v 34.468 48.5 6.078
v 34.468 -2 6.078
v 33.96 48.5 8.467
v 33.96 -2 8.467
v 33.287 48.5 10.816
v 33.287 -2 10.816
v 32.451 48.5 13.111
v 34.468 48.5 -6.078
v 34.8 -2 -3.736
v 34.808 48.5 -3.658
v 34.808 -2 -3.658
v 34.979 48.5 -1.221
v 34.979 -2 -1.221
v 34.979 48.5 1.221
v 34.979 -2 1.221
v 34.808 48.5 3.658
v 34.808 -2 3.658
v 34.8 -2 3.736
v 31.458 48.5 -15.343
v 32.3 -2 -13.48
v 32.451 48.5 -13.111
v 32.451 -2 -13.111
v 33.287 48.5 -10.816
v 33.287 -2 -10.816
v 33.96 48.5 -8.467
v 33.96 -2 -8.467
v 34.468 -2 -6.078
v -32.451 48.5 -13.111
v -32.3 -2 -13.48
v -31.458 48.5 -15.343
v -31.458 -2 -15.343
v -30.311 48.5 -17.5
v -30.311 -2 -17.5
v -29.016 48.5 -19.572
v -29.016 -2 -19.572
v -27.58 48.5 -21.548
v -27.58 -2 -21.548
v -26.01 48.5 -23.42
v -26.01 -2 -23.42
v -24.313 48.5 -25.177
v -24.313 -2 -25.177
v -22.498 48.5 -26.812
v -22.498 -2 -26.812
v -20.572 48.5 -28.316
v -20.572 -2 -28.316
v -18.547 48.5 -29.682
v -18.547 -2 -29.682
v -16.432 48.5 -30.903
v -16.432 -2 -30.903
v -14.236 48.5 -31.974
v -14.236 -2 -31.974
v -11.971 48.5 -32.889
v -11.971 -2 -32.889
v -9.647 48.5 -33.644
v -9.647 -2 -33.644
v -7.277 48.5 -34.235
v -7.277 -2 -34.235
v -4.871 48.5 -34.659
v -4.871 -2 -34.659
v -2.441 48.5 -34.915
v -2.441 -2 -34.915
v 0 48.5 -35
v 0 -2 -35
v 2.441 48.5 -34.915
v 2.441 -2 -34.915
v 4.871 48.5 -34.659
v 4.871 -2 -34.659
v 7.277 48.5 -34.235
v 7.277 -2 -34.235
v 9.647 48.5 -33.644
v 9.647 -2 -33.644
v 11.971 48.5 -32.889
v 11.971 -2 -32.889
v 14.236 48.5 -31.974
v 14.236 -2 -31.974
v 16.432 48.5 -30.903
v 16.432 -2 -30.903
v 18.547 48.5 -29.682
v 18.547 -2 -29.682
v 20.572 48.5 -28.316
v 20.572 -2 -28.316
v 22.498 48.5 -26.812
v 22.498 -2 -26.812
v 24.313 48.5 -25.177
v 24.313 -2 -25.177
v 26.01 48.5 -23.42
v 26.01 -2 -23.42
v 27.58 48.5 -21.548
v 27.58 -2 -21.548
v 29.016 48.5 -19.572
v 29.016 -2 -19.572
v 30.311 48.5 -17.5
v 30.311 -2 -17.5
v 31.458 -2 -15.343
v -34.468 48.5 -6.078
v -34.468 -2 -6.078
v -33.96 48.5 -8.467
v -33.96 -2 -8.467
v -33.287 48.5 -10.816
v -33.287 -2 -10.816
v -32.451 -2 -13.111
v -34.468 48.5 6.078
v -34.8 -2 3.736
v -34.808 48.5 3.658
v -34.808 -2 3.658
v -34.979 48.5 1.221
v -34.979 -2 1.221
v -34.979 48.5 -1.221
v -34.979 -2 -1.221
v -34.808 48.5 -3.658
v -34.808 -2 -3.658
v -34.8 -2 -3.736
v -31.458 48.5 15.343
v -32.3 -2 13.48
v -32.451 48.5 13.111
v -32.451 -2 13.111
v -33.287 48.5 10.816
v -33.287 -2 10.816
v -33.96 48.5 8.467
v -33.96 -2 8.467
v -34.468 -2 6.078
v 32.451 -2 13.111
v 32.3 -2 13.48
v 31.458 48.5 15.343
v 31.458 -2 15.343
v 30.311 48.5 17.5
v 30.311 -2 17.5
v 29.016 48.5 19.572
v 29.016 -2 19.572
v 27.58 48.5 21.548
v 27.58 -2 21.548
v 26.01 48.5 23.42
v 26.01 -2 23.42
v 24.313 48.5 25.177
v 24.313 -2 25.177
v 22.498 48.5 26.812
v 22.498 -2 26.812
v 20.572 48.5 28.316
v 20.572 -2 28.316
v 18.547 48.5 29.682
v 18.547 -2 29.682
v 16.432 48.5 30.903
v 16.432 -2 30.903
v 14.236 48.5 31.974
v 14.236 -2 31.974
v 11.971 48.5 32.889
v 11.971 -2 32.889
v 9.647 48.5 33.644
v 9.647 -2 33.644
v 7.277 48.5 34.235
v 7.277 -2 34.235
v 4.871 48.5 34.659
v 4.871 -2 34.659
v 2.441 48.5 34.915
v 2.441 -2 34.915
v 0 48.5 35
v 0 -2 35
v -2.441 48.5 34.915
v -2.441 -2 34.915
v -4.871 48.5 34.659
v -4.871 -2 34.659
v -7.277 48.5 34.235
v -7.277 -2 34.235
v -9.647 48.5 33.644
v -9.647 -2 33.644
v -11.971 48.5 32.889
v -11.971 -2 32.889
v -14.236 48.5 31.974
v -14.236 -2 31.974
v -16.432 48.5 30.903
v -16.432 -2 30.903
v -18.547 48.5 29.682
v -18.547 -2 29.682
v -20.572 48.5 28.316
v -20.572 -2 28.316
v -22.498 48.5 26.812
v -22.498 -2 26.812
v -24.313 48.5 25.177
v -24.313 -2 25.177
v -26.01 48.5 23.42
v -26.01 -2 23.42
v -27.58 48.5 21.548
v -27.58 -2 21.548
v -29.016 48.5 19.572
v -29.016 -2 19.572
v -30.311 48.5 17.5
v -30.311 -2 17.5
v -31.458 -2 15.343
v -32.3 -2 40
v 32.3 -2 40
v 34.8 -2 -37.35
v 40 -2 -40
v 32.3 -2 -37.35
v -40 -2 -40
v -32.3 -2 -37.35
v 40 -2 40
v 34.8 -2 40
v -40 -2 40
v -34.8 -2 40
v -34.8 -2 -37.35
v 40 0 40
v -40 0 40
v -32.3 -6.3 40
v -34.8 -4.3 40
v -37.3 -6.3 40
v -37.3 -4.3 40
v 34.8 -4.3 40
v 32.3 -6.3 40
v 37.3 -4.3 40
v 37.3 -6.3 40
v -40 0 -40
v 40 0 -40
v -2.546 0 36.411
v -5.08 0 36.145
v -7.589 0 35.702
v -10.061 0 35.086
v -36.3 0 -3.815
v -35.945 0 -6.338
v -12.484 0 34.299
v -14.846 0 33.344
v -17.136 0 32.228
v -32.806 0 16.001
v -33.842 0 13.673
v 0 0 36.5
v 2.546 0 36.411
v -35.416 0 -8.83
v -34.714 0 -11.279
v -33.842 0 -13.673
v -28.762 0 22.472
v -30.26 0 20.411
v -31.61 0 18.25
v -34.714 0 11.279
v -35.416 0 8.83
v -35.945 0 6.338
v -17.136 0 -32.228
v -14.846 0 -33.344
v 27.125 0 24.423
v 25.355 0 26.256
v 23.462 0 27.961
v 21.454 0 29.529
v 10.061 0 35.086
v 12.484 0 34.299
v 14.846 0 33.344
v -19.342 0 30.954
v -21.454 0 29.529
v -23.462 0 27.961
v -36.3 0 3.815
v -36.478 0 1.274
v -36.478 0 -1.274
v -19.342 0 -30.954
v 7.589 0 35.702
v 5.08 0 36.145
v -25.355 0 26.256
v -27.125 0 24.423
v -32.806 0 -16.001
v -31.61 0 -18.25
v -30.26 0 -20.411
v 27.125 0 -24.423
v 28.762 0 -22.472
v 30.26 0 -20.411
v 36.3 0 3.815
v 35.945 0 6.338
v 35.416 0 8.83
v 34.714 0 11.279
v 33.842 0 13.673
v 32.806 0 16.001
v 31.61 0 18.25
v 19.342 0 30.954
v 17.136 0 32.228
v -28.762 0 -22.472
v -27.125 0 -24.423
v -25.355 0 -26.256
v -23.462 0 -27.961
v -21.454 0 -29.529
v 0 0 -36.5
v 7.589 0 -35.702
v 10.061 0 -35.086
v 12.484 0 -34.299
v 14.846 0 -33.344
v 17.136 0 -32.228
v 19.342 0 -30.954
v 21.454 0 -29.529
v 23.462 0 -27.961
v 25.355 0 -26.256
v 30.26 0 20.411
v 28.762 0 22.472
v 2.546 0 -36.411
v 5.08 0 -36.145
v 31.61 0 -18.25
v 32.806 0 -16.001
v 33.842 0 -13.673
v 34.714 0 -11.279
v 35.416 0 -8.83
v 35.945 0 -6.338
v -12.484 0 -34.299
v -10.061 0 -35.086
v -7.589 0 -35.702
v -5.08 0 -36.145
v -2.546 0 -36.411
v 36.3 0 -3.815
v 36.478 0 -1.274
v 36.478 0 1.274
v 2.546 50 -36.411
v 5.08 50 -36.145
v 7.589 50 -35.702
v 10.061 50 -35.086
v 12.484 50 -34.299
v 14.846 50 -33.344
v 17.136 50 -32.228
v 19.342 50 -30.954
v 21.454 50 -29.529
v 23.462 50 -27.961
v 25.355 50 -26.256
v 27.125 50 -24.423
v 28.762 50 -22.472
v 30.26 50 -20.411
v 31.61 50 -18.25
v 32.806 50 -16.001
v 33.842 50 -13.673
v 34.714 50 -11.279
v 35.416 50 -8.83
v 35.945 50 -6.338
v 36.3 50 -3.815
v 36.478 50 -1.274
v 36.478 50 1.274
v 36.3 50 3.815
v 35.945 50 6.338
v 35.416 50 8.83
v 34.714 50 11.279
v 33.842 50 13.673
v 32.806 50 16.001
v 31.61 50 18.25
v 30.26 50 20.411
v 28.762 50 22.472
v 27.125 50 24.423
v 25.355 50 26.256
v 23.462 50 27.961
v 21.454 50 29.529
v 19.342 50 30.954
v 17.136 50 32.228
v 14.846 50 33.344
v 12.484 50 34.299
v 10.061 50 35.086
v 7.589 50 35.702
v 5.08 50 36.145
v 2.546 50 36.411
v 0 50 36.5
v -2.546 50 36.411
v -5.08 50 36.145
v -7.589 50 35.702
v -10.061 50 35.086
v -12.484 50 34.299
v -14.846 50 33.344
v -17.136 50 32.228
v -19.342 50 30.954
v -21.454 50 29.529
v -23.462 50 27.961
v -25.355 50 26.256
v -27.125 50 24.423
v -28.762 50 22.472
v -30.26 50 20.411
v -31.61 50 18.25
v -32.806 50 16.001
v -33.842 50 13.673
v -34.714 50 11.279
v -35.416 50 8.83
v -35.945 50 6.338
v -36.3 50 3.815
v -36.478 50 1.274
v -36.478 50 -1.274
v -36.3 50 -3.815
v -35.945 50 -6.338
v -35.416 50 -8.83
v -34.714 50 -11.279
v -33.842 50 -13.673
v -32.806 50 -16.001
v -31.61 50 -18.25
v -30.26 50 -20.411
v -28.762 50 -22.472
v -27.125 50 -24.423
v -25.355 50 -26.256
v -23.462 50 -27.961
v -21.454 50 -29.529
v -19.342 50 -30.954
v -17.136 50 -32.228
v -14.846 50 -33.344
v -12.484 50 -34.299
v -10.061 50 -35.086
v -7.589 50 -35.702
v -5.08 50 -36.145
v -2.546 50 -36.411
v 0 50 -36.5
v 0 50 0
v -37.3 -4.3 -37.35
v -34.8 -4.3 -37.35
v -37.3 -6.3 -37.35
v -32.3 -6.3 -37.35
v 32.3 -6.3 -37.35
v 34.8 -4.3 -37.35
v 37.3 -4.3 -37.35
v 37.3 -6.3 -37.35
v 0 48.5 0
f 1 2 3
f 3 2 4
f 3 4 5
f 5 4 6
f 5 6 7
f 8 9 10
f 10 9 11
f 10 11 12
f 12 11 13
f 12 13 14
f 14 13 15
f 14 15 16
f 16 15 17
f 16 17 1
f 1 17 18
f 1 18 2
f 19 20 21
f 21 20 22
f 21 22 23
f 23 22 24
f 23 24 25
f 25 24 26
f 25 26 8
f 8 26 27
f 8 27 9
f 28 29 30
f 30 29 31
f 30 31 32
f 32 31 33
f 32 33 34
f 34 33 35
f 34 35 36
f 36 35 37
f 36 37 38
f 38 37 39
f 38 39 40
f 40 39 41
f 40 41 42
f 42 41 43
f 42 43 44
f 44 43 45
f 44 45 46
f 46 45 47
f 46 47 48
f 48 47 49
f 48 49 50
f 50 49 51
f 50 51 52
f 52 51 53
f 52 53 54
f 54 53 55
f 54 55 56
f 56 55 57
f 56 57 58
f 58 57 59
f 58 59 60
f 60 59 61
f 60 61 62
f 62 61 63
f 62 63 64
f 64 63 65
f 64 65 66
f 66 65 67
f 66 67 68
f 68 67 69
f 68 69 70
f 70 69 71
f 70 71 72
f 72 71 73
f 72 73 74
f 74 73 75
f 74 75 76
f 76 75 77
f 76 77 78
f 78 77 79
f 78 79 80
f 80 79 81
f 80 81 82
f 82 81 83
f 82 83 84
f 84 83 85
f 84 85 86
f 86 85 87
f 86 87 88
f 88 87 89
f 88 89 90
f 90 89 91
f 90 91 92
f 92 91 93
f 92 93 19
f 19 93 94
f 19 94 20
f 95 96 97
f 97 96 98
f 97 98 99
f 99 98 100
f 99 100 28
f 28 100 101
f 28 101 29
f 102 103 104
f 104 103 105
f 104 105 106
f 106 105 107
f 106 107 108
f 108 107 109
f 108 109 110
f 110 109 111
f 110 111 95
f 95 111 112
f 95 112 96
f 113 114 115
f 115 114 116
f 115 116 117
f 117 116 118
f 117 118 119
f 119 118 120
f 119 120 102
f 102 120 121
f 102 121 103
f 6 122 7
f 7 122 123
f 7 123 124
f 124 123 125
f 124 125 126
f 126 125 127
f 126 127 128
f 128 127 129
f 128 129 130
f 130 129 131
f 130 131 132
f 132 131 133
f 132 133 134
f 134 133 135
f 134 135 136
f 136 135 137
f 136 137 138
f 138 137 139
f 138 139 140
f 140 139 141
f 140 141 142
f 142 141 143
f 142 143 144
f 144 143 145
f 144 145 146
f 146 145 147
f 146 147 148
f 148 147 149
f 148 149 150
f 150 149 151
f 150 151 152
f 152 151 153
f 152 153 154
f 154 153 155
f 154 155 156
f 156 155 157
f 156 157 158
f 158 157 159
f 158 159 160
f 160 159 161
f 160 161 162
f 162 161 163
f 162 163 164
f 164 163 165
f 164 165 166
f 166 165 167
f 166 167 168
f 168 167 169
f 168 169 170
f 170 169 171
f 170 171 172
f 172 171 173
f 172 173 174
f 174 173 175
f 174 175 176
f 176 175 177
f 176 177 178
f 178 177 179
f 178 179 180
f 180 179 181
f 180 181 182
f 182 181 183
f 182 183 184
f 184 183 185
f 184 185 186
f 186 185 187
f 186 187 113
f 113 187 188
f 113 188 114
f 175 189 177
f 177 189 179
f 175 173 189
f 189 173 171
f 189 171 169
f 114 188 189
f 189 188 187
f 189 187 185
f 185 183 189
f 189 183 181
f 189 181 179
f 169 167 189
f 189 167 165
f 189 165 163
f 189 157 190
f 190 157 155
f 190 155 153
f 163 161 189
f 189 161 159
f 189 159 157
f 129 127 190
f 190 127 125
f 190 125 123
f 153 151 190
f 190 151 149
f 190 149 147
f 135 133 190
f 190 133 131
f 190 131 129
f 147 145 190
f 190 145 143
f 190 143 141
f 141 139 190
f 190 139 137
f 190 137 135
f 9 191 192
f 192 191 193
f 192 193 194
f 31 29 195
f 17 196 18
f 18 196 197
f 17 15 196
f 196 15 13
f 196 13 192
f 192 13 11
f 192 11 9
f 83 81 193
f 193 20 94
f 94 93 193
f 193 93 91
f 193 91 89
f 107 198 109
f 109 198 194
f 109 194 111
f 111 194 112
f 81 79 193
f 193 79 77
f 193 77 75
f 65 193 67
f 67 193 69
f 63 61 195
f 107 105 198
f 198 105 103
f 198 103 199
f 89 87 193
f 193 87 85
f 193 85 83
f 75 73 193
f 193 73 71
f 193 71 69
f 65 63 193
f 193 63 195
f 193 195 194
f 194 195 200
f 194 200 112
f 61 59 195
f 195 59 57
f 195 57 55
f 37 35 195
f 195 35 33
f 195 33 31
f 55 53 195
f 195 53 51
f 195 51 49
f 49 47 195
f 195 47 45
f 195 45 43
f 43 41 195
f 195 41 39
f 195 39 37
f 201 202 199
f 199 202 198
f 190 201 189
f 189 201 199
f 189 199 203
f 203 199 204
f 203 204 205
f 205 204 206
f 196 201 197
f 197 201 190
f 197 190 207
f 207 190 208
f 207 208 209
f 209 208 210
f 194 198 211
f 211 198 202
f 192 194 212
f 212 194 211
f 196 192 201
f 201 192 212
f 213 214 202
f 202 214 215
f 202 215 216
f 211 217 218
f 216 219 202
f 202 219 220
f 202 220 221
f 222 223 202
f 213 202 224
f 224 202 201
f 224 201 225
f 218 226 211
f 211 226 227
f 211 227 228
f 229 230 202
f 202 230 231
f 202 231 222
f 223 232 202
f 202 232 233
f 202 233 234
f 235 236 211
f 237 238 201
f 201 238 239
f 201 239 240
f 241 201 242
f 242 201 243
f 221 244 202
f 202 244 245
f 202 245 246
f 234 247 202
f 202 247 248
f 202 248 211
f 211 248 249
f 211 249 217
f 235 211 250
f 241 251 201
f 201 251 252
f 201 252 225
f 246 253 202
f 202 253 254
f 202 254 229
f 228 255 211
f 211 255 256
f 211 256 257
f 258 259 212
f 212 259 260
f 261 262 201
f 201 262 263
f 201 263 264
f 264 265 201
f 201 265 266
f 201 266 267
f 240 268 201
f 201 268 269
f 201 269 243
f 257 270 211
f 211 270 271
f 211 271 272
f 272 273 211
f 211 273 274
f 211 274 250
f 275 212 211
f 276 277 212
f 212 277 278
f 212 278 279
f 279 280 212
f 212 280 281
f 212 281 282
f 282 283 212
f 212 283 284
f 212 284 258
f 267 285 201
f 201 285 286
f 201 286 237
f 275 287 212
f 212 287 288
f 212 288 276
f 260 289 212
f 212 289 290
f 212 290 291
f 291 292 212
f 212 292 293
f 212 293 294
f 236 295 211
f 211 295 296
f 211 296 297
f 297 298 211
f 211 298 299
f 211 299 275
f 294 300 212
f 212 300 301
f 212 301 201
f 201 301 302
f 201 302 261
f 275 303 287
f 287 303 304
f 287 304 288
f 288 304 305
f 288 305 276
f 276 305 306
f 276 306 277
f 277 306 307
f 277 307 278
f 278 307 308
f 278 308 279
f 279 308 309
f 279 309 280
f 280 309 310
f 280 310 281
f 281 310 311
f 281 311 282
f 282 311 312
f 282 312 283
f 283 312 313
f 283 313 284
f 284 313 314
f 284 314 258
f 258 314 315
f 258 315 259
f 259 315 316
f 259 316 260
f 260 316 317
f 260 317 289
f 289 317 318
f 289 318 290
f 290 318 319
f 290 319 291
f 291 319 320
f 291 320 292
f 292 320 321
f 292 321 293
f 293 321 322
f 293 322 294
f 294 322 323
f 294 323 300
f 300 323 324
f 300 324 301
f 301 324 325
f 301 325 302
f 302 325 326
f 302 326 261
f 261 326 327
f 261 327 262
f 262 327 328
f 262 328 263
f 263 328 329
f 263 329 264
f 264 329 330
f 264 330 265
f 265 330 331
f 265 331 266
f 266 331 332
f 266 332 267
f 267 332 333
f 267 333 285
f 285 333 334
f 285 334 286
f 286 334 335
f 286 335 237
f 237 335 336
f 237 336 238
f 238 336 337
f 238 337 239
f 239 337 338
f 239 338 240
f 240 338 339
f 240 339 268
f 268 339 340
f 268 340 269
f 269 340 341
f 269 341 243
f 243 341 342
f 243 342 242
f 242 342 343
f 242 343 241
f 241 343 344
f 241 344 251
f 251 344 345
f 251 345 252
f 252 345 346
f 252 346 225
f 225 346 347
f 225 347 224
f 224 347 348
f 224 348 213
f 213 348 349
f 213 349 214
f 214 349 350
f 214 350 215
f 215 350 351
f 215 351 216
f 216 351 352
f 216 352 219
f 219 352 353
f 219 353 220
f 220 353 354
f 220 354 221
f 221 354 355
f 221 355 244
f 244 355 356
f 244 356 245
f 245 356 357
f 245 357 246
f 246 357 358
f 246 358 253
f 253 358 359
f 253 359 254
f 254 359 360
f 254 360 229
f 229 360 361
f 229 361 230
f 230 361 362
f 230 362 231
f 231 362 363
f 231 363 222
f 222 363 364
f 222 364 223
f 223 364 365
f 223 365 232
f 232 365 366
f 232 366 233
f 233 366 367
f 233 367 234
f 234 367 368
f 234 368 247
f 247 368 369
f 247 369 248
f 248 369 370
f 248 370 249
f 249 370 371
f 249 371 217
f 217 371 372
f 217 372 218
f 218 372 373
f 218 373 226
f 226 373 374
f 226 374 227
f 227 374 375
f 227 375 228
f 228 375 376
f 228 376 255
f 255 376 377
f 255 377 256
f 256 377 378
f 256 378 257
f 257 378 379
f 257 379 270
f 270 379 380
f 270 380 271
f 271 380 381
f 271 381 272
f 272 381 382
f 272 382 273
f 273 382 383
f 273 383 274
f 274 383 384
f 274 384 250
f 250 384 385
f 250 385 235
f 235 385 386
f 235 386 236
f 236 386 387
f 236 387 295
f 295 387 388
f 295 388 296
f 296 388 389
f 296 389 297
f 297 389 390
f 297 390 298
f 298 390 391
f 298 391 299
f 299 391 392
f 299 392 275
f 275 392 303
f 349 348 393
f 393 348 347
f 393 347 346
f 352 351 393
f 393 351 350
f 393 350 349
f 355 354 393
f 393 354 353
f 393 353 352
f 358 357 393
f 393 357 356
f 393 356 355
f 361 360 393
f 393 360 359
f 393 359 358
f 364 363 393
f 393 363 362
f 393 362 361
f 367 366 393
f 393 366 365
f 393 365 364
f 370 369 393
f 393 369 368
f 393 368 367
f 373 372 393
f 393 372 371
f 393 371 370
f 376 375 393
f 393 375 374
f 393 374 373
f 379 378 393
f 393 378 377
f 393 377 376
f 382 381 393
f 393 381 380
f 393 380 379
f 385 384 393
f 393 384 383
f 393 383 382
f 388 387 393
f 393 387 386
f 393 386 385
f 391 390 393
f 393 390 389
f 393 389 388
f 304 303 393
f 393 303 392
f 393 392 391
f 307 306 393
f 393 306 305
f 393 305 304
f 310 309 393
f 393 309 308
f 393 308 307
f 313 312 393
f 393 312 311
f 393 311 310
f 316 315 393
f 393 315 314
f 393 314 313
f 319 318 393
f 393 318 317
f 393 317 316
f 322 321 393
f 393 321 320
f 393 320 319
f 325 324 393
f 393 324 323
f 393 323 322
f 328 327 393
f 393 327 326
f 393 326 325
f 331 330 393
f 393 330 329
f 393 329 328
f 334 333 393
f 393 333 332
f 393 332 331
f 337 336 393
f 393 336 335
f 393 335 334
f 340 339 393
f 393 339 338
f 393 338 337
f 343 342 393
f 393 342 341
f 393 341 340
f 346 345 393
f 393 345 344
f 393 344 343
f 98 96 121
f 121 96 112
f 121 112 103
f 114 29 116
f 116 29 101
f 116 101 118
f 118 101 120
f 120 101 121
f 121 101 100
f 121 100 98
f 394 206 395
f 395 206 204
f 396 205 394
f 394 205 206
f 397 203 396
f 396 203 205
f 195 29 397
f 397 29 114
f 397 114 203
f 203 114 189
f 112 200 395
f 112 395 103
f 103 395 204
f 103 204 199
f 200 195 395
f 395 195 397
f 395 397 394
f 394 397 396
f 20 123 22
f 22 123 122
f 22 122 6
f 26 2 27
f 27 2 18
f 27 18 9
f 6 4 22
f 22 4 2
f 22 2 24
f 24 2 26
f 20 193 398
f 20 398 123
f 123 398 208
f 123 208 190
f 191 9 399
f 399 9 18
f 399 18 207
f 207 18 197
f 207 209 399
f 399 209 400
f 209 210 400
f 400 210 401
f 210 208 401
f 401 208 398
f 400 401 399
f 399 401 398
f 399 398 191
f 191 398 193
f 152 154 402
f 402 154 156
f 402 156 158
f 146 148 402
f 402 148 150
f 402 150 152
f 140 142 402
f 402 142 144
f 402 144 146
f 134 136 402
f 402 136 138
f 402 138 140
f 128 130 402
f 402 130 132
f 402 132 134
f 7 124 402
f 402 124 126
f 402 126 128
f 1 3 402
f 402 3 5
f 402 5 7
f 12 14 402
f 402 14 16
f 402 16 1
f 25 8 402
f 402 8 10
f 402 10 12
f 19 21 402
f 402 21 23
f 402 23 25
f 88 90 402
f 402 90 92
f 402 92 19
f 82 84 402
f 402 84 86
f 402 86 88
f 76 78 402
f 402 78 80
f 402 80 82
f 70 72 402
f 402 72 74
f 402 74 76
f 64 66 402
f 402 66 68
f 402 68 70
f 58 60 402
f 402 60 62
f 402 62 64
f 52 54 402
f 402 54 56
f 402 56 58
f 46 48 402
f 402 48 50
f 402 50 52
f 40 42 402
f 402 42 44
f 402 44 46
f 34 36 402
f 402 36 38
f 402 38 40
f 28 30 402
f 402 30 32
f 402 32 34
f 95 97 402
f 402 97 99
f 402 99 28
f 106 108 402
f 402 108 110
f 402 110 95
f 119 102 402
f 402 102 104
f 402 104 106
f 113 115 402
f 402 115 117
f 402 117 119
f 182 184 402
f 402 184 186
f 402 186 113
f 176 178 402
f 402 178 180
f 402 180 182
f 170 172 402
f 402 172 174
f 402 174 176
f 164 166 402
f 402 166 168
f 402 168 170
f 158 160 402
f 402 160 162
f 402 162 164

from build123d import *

# Parameters (mm, degrees)
SKETCH1_W           = 80
SKETCH1_H           = 80
SKETCH1_R           = 36.5
SKETCH1_R_2         = 35
BOSS_EXTRUDE3_DEPTH = 2
BOSS_EXTRUDE4_START = 50
SKETCH1_7_R         = 36.5
SKETCH1_7_R_2       = 35
BOSS_EXTRUDE4_DEPTH = 50
BOSS_EXTRUDE5_DEPTH = 77.35
SKETCH4_R           = 36
BOSS_EXTRUDE6_DEPTH = 1.5


with BuildPart() as part:
    # Sketch1 → Boss-Extrude3 (new body)
    # profile 1 of 2: a face of its own
    with BuildSketch(Plane(origin=(0, 0, 0), x_dir=(1, 0, 0), z_dir=(0, 1, 0))):
        Rectangle(SKETCH1_W, SKETCH1_H)
        Circle(SKETCH1_R, mode=Mode.SUBTRACT)
    # profile 2 of 2: a face of its own
    with BuildSketch(Plane(origin=(0, 0, 0), x_dir=(1, 0, 0), z_dir=(0, 1, 0))):
        Circle(SKETCH1_R)
        with Locations(Location((0, 0, 0), (0, 0, 270))):
            Circle(SKETCH1_R_2, mode=Mode.SUBTRACT)
    extrude(amount=-BOSS_EXTRUDE3_DEPTH)

    # Sketch1<7> → Boss-Extrude4 (add)
    with BuildSketch(Plane(origin=(0, 0, 0), x_dir=(1, 0, 0), z_dir=(0, 1, 0)).offset(BOSS_EXTRUDE4_START)):
        with Locations(Location((0, 0, 0), (0, 0, 270))):
            Circle(SKETCH1_7_R)
        with Locations(Location((0, 0, 0), (0, 0, 270))):
            Circle(SKETCH1_7_R_2, mode=Mode.SUBTRACT)
    extrude(amount=-BOSS_EXTRUDE4_DEPTH)

    # Sketch3 → Boss-Extrude5 (add)
    with BuildSketch(Plane.XY.offset(40)):
        Polygon((-32.3, -2), (-34.8, -2), (-34.8, -4.3), (-37.3, -4.3), (-37.3, -6.3), (-32.3, -6.3), align=None)
        Polygon((32.3, -6.3), (37.3, -6.3), (37.3, -4.3), (34.8, -4.3), (34.8, -2), (32.3, -2), align=None)
    extrude(amount=-BOSS_EXTRUDE5_DEPTH)

    # Sketch4 → Boss-Extrude6 (add)
    with BuildSketch(Plane(origin=(0, 50, 0), x_dir=(1, 0, 0), z_dir=(0, 1, 0))):
        Circle(SKETCH4_R)
    extrude(amount=-BOSS_EXTRUDE6_DEPTH)


solid = part.part
